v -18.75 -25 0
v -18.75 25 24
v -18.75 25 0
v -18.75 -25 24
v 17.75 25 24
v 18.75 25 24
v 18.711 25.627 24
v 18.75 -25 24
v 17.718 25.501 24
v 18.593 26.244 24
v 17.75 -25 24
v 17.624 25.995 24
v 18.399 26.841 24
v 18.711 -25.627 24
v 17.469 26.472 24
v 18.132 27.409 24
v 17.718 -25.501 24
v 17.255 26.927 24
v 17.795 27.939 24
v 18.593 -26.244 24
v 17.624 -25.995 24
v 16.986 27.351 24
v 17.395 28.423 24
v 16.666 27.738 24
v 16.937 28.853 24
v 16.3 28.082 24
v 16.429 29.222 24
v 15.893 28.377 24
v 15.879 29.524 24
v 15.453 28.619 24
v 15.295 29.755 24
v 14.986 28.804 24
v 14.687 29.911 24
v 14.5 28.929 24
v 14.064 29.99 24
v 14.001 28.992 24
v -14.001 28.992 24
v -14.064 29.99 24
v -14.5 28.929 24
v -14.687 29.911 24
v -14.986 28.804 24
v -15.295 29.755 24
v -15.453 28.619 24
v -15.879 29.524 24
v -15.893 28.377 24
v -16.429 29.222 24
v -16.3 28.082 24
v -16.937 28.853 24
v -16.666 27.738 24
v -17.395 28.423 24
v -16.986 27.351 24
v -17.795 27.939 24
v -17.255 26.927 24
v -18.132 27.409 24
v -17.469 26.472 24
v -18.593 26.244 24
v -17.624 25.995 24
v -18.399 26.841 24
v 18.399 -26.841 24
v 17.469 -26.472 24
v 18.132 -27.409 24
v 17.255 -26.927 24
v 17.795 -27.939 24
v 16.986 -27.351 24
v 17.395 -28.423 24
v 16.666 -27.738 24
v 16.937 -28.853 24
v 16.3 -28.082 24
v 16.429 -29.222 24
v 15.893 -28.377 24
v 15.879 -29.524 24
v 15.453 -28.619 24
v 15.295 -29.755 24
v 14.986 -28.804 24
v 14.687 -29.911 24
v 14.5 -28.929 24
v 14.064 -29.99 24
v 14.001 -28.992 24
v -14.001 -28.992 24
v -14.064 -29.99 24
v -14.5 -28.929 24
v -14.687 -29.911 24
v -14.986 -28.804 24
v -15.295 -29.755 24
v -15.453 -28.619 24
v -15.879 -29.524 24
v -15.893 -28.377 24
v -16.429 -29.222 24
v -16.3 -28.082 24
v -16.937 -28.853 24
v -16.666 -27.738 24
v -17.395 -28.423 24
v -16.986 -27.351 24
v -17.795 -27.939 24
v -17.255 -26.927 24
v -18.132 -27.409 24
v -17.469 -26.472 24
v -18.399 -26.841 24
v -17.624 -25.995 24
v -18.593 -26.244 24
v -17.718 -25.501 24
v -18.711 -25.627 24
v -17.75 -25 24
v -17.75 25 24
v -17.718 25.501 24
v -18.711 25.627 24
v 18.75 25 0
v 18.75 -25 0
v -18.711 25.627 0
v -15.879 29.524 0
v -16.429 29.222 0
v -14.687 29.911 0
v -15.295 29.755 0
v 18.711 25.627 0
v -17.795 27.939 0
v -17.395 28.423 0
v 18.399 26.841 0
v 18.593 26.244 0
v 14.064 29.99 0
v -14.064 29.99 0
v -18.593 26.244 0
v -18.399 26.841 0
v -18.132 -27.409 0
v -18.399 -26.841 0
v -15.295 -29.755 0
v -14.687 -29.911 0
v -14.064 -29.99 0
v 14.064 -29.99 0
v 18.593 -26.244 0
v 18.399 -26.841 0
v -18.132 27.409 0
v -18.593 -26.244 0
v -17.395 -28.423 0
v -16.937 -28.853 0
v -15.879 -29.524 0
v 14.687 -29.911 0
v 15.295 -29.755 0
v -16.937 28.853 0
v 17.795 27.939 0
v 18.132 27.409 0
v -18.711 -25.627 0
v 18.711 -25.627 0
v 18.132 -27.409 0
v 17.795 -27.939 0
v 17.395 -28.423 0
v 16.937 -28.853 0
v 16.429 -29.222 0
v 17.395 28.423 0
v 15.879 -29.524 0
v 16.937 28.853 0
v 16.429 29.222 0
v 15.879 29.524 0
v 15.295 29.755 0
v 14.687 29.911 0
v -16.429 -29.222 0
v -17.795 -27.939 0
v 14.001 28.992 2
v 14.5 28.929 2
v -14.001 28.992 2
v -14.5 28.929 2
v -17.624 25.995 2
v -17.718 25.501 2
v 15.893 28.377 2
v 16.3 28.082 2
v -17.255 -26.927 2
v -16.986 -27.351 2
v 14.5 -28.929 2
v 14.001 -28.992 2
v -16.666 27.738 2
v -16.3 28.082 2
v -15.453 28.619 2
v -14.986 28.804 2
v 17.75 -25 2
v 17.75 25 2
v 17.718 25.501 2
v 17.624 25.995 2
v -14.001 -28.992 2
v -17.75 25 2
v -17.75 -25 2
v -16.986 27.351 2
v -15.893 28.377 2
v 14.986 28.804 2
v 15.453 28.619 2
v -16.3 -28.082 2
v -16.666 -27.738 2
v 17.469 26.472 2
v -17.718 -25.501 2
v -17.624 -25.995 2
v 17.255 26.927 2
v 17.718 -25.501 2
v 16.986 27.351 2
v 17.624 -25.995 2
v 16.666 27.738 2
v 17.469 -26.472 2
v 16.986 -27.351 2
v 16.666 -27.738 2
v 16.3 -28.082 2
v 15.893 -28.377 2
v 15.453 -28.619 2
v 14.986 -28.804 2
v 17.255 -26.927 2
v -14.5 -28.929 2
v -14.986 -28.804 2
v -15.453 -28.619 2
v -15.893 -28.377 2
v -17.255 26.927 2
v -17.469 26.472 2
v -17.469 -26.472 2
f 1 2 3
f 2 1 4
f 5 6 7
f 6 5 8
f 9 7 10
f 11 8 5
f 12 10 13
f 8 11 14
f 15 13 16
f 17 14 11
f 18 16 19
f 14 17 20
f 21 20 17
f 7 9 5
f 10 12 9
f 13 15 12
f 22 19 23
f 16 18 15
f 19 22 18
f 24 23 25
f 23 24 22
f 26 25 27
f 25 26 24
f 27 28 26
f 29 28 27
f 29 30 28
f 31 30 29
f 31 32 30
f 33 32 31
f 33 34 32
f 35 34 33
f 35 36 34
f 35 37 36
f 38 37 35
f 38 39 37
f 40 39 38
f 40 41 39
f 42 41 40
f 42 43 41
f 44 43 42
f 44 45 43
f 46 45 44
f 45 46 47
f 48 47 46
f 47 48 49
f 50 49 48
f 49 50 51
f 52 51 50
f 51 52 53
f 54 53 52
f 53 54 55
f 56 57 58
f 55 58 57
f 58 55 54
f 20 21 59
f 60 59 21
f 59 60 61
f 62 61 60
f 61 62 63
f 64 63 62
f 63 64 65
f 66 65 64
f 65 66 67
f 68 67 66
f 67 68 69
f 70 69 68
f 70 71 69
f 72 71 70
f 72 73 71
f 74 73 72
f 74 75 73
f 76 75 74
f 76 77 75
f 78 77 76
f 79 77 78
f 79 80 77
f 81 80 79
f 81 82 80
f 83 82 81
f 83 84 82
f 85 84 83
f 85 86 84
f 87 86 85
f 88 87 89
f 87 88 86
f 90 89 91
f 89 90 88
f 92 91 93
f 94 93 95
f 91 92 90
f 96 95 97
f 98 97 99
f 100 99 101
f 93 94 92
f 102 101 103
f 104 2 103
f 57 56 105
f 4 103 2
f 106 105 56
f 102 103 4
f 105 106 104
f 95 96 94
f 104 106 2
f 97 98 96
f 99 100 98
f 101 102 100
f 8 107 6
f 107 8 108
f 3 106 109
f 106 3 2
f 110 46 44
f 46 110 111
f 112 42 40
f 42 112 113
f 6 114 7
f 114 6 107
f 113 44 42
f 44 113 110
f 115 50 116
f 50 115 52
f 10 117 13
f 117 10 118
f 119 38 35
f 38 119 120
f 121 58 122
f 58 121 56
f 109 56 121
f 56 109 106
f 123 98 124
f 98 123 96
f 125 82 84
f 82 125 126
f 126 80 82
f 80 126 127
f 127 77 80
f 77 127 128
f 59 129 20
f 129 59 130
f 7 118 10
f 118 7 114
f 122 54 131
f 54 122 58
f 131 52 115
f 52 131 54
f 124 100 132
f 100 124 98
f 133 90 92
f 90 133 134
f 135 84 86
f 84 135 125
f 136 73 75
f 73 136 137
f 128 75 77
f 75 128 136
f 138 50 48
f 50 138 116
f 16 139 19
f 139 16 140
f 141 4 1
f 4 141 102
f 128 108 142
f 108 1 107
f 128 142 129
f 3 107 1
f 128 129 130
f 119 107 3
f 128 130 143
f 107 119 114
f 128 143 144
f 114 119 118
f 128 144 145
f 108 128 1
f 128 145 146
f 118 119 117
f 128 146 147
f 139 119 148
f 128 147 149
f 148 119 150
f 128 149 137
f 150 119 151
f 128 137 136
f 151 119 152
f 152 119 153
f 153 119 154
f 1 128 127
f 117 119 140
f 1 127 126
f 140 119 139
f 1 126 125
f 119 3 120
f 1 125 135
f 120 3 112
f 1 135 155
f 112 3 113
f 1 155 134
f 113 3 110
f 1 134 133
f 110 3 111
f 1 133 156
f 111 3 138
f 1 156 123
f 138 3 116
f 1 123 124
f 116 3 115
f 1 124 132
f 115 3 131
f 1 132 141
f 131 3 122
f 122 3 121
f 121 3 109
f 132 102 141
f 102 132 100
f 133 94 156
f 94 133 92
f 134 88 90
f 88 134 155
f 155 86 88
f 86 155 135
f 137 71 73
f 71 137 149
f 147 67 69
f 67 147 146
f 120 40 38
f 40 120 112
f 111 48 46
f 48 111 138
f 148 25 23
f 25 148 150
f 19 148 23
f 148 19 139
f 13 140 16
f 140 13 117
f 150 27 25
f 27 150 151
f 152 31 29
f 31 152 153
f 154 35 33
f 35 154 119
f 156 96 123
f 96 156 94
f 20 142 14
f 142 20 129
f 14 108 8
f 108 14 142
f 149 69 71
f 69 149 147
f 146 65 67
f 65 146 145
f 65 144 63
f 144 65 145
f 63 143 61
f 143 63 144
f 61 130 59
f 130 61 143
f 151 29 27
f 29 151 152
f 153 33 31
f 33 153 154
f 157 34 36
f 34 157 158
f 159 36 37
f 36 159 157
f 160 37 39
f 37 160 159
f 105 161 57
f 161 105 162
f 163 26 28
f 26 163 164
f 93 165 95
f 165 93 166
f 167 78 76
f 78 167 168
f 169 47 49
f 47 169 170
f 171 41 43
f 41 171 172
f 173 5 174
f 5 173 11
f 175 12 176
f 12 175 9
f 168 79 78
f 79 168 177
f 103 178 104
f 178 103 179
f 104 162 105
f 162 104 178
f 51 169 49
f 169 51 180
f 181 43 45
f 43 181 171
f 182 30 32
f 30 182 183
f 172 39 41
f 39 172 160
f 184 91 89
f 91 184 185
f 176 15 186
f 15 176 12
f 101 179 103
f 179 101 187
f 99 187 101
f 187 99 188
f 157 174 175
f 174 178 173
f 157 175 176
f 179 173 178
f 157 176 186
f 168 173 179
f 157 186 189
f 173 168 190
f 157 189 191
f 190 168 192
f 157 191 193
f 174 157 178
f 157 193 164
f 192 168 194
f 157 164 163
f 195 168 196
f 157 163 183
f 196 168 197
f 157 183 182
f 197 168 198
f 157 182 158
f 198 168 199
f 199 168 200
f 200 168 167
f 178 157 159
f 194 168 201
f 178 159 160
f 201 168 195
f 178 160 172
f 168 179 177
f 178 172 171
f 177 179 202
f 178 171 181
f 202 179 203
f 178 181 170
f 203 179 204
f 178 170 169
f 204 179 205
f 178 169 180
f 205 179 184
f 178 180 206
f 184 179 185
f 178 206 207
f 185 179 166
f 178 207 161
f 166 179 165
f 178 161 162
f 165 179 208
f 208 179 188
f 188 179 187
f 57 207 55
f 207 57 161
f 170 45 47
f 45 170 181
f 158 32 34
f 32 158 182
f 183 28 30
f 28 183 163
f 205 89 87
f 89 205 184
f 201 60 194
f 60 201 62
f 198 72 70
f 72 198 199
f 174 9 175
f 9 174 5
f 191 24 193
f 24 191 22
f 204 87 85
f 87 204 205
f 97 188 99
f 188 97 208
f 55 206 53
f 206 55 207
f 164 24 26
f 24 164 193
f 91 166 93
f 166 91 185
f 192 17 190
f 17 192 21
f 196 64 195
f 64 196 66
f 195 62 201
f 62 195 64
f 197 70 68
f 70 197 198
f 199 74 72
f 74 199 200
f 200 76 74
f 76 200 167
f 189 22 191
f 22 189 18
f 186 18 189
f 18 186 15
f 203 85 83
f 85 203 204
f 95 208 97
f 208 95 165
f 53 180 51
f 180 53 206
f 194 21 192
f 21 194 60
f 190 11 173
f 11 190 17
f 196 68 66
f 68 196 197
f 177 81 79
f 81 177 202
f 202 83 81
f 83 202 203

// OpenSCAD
$fn = 50;


difference() {
	union() {
		hull() {
			translate(v = [-13.7500000000, 25.0000000000, 0]) {
				cylinder(h = 24, r = 5);
			}
			translate(v = [13.7500000000, 25.0000000000, 0]) {
				cylinder(h = 24, r = 5);
			}
			translate(v = [-13.7500000000, -25.0000000000, 0]) {
				cylinder(h = 24, r = 5);
			}
			translate(v = [13.7500000000, -25.0000000000, 0]) {
				cylinder(h = 24, r = 5);
			}
		}
	}
	union() {
		translate(v = [0, 0, 2]) {
			hull() {
				translate(v = [-13.7500000000, 25.0000000000, 0]) {
					cylinder(h = 22, r = 4);
				}
				translate(v = [13.7500000000, 25.0000000000, 0]) {
					cylinder(h = 22, r = 4);
				}
				translate(v = [-13.7500000000, -25.0000000000, 0]) {
					cylinder(h = 22, r = 4);
				}
				translate(v = [13.7500000000, -25.0000000000, 0]) {
					cylinder(h = 22, r = 4);
				}
			}
		}
	}
}
